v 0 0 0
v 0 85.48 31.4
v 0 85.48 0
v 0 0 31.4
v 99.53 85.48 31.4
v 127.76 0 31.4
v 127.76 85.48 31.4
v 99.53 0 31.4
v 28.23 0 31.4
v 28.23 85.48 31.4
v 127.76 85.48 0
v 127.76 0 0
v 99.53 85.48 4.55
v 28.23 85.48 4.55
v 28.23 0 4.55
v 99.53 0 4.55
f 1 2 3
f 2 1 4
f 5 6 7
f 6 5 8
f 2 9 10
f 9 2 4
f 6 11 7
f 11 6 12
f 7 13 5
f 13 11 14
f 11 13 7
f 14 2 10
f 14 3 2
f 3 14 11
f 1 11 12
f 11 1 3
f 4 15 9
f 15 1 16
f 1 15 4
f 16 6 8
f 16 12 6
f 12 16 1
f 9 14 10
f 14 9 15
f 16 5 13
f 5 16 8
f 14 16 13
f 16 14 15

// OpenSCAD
// NEST 1 Well Reservoir 195 mL
// loadName: nest_1_reservoir_195ml
// Auto-generated by labware_to_stl.py from Opentrons V2 labware definition

$fn = 64;

difference() {
    // ── Labware body ──────────────────────────────────────────────
    cube([127.7600, 85.4800, 31.4000]);

    // ── Well cutouts ──────────────────────────────────────────────
    // Well A1
    translate([28.2300, -10.9100, 4.5500])
        cube([71.3000, 107.3000, 27.8500]);
}
